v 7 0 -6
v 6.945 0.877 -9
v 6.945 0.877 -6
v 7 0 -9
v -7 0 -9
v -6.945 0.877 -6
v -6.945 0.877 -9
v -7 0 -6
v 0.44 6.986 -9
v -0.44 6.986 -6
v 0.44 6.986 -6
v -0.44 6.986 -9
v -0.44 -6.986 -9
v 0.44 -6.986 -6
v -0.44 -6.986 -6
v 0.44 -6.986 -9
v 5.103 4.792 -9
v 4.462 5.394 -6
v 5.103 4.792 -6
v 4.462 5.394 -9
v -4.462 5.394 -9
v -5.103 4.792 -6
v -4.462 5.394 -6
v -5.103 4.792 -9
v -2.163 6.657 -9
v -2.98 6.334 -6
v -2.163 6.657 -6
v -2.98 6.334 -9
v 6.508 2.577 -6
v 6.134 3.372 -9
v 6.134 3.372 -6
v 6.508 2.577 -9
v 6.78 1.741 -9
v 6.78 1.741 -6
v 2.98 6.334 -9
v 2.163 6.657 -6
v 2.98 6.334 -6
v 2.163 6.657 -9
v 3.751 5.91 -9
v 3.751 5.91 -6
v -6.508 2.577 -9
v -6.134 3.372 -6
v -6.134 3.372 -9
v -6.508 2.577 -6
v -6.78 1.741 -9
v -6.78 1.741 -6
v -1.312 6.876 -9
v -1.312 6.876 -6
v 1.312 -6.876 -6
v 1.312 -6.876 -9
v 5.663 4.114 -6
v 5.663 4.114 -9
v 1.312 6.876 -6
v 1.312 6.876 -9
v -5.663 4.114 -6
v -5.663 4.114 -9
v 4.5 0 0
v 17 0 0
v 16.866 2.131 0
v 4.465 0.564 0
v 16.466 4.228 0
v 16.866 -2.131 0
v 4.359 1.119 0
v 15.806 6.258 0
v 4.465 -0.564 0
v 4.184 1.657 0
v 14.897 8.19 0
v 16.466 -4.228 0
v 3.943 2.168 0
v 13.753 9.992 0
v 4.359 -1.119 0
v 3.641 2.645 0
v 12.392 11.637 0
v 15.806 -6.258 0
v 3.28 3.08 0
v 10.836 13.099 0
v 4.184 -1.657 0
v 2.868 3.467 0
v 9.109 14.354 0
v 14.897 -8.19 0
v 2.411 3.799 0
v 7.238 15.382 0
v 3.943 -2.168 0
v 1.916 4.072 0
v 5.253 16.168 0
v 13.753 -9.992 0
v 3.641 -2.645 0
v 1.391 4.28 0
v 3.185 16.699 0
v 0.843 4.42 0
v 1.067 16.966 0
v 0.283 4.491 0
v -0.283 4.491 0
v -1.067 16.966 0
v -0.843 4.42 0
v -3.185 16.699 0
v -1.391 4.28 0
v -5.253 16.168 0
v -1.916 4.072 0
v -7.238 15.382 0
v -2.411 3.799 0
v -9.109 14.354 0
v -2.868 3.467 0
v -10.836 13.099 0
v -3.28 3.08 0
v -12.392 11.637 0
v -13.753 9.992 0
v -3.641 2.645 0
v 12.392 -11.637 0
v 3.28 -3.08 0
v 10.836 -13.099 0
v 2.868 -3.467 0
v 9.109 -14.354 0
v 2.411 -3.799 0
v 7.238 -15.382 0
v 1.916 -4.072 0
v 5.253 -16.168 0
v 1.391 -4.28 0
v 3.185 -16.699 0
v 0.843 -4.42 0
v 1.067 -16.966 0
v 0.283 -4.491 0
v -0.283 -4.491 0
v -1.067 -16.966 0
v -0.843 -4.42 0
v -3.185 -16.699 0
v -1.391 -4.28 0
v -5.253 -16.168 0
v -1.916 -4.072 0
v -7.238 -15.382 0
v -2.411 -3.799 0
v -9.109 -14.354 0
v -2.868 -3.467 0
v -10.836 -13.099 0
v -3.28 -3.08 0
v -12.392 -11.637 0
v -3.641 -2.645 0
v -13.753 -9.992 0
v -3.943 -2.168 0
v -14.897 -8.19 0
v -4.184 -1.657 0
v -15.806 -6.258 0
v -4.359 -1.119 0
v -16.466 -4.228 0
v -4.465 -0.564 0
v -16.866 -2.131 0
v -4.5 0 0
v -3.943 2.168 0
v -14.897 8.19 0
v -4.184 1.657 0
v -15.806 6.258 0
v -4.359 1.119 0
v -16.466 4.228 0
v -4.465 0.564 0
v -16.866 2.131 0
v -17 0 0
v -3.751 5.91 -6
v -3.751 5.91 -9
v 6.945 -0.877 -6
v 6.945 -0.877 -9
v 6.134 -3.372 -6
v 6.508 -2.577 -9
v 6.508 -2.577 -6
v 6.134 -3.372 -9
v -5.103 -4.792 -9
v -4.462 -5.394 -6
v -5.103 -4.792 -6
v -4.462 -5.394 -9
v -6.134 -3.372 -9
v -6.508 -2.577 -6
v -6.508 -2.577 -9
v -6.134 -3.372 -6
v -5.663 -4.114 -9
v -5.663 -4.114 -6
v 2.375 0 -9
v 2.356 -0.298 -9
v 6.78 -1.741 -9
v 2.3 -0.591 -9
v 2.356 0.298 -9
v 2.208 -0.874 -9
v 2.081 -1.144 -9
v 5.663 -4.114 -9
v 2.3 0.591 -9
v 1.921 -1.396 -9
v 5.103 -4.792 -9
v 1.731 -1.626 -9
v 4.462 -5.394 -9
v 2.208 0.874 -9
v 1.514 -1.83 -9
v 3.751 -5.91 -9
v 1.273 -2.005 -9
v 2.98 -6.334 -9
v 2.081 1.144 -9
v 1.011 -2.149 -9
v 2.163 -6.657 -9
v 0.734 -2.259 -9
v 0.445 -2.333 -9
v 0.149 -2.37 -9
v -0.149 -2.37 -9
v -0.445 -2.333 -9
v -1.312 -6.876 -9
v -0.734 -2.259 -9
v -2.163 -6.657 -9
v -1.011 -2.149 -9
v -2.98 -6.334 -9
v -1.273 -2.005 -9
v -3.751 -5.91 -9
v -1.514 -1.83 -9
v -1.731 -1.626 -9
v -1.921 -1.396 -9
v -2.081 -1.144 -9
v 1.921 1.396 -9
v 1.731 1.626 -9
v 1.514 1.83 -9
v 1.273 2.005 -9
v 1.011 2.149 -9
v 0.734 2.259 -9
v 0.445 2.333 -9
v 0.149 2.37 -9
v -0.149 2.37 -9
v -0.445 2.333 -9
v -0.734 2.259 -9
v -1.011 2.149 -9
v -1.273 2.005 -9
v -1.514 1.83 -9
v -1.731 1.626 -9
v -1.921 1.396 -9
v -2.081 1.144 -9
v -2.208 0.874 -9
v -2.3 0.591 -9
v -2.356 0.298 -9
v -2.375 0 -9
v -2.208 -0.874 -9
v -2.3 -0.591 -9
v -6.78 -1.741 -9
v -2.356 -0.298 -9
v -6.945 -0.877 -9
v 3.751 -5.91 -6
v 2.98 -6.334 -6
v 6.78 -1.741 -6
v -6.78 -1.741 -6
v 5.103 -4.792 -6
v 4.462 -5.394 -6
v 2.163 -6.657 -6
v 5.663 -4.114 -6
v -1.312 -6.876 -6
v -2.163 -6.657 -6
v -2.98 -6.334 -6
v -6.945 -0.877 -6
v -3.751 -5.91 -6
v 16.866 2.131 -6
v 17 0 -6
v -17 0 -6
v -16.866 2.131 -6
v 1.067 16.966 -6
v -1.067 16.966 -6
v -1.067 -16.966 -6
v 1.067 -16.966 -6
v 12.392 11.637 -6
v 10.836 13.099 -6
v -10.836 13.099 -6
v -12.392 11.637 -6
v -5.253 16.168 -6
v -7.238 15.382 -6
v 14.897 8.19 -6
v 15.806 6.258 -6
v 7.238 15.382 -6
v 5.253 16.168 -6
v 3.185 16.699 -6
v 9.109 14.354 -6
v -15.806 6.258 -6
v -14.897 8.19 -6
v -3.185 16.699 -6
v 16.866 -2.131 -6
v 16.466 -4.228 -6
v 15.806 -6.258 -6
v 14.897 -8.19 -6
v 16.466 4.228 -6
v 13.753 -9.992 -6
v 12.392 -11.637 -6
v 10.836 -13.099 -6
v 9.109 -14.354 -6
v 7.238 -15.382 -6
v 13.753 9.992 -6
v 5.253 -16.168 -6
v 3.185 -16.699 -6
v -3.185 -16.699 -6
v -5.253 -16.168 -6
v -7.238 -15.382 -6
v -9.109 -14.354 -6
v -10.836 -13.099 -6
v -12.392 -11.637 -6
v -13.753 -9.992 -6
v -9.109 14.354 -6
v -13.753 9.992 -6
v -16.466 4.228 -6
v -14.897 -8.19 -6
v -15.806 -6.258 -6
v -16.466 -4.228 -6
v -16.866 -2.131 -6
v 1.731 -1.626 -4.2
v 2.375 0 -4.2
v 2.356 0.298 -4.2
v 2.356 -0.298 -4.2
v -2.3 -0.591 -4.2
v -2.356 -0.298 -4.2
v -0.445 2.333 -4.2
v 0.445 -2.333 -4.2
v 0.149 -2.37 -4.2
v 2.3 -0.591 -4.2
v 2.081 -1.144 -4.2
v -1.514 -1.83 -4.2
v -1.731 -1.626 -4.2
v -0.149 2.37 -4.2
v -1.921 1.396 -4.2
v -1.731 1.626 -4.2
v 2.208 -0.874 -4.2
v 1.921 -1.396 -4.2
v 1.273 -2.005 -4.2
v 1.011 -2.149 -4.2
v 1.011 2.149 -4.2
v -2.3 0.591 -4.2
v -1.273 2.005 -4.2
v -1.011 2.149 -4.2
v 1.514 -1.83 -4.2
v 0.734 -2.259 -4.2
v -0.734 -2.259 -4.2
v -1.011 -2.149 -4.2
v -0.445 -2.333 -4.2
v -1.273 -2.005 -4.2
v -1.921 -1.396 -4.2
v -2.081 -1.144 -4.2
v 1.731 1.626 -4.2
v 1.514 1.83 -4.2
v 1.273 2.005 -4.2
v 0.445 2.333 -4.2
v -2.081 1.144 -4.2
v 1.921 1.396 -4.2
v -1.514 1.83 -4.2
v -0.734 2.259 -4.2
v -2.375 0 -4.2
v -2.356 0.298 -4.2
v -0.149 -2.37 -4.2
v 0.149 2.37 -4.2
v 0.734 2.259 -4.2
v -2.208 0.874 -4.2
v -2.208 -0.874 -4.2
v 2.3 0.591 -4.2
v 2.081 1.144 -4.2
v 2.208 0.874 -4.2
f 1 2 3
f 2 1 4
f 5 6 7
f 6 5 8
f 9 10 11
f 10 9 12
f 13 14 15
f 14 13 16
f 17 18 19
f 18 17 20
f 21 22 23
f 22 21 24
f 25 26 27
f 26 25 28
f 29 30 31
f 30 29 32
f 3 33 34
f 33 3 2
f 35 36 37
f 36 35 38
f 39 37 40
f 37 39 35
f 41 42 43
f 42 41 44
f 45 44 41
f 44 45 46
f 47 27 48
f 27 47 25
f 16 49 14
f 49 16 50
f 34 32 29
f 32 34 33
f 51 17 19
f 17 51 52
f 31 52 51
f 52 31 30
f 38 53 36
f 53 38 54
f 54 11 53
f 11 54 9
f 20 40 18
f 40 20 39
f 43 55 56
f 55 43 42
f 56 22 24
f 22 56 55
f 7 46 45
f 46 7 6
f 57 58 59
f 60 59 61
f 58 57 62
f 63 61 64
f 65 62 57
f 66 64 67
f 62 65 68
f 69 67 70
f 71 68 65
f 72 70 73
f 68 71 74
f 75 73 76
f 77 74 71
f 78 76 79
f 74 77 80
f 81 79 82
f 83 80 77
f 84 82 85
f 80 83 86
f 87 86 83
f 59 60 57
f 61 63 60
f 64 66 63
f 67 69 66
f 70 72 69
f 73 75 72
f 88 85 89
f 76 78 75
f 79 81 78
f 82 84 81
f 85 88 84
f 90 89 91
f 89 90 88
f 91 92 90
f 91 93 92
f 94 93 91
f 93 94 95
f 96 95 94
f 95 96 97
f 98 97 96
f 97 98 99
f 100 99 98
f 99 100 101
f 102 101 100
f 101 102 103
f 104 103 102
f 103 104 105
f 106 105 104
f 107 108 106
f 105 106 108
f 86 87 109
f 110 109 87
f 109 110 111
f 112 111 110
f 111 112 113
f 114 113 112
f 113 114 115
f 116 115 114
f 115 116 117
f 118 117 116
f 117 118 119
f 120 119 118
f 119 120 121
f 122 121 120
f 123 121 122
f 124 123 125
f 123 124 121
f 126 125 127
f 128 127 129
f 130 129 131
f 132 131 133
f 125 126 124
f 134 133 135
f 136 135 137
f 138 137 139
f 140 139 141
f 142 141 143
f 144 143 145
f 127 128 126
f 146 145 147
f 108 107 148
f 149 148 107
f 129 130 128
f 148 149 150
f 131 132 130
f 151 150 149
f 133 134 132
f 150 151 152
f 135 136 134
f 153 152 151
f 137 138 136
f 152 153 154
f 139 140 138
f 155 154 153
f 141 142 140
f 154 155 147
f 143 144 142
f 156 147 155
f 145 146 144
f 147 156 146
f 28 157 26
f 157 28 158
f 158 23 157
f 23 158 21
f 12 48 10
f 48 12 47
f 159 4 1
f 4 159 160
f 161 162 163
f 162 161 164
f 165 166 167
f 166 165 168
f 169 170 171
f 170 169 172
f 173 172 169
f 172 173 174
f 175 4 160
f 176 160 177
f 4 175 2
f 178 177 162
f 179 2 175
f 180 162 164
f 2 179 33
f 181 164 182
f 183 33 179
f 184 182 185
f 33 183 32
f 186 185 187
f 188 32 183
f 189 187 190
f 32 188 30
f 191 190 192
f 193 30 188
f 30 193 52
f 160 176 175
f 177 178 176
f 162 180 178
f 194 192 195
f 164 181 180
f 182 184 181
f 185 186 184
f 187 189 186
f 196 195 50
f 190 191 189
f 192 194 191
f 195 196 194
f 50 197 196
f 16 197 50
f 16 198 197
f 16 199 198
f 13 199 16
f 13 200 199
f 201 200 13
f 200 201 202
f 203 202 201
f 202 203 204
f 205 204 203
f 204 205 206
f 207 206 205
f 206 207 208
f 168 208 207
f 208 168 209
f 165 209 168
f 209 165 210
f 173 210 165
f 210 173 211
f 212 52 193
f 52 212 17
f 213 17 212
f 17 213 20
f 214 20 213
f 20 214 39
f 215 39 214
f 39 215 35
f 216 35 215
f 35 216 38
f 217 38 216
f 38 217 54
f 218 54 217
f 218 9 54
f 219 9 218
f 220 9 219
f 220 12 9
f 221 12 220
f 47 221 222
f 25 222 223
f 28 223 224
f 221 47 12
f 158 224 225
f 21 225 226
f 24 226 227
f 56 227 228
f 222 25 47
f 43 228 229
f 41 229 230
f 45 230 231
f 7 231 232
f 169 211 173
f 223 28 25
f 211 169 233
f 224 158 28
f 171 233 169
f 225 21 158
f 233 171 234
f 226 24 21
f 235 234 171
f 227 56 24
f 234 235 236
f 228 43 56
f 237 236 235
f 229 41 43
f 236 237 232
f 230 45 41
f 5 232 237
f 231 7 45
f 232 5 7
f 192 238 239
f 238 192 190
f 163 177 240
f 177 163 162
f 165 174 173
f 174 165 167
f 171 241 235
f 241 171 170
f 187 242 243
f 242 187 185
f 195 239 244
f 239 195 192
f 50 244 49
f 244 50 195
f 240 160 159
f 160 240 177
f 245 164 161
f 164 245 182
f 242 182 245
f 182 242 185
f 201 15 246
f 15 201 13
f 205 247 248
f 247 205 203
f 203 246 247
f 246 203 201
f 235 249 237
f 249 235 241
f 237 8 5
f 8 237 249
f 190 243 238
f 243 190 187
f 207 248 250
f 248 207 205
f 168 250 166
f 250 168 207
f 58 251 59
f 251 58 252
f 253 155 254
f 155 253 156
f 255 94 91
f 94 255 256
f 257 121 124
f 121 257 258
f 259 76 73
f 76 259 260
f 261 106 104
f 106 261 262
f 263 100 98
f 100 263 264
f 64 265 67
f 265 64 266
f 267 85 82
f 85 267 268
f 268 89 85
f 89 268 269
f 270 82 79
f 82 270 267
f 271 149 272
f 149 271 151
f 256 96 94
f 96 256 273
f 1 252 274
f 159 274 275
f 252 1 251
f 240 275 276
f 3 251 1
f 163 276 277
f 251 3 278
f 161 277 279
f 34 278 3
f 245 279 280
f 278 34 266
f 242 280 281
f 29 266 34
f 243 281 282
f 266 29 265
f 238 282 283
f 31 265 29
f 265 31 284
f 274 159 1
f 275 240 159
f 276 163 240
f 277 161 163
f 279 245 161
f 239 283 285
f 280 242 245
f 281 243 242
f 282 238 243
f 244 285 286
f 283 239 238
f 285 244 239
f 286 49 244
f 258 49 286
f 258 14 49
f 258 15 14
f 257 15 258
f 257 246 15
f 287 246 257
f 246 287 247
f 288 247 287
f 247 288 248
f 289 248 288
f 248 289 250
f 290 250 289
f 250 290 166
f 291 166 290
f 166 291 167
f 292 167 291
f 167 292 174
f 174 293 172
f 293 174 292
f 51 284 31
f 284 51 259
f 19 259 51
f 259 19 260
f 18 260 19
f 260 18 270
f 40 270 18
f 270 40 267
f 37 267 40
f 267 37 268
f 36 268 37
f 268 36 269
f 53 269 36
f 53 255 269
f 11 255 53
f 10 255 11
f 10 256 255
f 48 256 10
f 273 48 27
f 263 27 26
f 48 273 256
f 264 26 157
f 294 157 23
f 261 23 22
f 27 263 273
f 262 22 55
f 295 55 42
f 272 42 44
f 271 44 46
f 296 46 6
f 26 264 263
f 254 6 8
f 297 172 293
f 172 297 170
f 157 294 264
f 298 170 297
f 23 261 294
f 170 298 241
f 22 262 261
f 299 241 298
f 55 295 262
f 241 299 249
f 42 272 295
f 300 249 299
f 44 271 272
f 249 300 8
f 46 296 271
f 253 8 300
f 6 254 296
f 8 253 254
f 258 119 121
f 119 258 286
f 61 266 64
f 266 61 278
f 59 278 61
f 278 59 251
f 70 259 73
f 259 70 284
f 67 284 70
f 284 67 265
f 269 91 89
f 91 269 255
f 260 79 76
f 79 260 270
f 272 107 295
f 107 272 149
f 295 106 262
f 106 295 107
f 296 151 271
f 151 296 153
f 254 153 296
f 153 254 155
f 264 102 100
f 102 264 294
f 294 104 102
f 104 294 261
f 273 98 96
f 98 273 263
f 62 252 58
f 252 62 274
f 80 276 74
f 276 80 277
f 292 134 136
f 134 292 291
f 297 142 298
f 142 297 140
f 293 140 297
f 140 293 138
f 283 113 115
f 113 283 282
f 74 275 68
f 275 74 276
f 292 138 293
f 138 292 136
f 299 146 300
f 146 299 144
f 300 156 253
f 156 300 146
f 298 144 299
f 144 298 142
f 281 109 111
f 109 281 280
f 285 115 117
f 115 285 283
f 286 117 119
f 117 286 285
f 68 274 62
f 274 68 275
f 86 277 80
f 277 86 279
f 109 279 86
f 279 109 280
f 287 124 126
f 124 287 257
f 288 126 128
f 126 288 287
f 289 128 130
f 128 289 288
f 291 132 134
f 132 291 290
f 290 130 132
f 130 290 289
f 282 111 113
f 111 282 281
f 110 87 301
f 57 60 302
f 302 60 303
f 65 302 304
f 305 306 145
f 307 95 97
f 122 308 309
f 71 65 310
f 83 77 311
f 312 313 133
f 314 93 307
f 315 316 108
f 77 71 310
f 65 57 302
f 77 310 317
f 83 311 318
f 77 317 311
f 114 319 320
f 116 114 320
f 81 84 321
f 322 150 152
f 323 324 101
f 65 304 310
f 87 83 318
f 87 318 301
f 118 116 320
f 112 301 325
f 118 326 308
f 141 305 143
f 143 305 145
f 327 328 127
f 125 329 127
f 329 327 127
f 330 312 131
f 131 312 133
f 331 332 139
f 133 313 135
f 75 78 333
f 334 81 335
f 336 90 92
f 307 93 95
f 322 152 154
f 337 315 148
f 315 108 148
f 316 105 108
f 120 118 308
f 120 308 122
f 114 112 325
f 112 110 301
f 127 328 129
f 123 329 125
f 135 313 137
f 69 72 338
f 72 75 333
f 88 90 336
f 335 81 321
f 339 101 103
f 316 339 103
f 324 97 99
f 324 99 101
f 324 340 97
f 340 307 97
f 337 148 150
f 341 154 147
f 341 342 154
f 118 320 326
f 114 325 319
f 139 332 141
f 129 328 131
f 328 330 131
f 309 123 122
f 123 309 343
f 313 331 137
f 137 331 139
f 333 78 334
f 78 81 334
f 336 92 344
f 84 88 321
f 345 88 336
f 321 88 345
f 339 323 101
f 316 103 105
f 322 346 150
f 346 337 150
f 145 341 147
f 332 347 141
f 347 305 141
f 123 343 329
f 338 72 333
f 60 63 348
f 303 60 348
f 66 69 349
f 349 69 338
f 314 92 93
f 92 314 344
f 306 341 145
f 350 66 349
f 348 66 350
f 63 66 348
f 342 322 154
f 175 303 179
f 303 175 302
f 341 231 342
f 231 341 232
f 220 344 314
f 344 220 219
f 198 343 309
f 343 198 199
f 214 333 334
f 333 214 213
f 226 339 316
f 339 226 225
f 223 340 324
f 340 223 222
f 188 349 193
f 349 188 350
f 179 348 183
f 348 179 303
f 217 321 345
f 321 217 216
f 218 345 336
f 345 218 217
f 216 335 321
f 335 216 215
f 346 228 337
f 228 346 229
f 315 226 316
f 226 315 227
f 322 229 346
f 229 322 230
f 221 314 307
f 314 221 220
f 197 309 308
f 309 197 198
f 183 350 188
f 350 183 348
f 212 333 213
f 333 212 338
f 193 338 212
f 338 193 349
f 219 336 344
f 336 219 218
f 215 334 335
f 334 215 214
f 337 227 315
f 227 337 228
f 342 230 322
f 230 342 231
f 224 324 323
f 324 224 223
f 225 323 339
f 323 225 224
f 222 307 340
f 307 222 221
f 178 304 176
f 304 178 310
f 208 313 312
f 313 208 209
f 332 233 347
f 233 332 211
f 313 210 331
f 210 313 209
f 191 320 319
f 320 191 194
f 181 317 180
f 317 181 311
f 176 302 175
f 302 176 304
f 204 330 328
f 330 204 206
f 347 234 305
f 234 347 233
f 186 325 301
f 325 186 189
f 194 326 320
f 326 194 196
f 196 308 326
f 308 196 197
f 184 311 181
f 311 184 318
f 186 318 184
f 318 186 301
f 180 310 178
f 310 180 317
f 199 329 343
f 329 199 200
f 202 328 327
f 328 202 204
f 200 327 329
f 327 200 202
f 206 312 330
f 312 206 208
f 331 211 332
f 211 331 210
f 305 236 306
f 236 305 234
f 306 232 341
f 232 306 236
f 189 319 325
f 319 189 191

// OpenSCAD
$fn = 50;


difference() {
	union() {
		translate(v = [0, 0, -9.0000000000]) {
			cylinder(h = 9, r = 7.0000000000);
		}
		translate(v = [0, 0, -6.0000000000]) {
			cylinder(h = 6, r = 17.0000000000);
		}
	}
	union() {
		translate(v = [0, 0, 0]) {
			rotate(a = [0, 0, 0]) {
				difference() {
					union() {
						#translate(v = [0, 0, -9.0000000000]) {
							cylinder(h = 9, r = 2.2500000000);
						}
						#translate(v = [0, 0, -4.2000000000]) {
							cylinder(h = 4.2000000000, r1 = 2.3750000000, r2 = 4.5000000000);
						}
						#translate(v = [0, 0, -9.0000000000]) {
							cylinder(h = 9, r = 2.3750000000);
						}
						#translate(v = [0, 0, -9.0000000000]) {
							cylinder(h = 9, r = 2.2500000000);
						}
					}
					union();
				}
			}
		}
	}
}
